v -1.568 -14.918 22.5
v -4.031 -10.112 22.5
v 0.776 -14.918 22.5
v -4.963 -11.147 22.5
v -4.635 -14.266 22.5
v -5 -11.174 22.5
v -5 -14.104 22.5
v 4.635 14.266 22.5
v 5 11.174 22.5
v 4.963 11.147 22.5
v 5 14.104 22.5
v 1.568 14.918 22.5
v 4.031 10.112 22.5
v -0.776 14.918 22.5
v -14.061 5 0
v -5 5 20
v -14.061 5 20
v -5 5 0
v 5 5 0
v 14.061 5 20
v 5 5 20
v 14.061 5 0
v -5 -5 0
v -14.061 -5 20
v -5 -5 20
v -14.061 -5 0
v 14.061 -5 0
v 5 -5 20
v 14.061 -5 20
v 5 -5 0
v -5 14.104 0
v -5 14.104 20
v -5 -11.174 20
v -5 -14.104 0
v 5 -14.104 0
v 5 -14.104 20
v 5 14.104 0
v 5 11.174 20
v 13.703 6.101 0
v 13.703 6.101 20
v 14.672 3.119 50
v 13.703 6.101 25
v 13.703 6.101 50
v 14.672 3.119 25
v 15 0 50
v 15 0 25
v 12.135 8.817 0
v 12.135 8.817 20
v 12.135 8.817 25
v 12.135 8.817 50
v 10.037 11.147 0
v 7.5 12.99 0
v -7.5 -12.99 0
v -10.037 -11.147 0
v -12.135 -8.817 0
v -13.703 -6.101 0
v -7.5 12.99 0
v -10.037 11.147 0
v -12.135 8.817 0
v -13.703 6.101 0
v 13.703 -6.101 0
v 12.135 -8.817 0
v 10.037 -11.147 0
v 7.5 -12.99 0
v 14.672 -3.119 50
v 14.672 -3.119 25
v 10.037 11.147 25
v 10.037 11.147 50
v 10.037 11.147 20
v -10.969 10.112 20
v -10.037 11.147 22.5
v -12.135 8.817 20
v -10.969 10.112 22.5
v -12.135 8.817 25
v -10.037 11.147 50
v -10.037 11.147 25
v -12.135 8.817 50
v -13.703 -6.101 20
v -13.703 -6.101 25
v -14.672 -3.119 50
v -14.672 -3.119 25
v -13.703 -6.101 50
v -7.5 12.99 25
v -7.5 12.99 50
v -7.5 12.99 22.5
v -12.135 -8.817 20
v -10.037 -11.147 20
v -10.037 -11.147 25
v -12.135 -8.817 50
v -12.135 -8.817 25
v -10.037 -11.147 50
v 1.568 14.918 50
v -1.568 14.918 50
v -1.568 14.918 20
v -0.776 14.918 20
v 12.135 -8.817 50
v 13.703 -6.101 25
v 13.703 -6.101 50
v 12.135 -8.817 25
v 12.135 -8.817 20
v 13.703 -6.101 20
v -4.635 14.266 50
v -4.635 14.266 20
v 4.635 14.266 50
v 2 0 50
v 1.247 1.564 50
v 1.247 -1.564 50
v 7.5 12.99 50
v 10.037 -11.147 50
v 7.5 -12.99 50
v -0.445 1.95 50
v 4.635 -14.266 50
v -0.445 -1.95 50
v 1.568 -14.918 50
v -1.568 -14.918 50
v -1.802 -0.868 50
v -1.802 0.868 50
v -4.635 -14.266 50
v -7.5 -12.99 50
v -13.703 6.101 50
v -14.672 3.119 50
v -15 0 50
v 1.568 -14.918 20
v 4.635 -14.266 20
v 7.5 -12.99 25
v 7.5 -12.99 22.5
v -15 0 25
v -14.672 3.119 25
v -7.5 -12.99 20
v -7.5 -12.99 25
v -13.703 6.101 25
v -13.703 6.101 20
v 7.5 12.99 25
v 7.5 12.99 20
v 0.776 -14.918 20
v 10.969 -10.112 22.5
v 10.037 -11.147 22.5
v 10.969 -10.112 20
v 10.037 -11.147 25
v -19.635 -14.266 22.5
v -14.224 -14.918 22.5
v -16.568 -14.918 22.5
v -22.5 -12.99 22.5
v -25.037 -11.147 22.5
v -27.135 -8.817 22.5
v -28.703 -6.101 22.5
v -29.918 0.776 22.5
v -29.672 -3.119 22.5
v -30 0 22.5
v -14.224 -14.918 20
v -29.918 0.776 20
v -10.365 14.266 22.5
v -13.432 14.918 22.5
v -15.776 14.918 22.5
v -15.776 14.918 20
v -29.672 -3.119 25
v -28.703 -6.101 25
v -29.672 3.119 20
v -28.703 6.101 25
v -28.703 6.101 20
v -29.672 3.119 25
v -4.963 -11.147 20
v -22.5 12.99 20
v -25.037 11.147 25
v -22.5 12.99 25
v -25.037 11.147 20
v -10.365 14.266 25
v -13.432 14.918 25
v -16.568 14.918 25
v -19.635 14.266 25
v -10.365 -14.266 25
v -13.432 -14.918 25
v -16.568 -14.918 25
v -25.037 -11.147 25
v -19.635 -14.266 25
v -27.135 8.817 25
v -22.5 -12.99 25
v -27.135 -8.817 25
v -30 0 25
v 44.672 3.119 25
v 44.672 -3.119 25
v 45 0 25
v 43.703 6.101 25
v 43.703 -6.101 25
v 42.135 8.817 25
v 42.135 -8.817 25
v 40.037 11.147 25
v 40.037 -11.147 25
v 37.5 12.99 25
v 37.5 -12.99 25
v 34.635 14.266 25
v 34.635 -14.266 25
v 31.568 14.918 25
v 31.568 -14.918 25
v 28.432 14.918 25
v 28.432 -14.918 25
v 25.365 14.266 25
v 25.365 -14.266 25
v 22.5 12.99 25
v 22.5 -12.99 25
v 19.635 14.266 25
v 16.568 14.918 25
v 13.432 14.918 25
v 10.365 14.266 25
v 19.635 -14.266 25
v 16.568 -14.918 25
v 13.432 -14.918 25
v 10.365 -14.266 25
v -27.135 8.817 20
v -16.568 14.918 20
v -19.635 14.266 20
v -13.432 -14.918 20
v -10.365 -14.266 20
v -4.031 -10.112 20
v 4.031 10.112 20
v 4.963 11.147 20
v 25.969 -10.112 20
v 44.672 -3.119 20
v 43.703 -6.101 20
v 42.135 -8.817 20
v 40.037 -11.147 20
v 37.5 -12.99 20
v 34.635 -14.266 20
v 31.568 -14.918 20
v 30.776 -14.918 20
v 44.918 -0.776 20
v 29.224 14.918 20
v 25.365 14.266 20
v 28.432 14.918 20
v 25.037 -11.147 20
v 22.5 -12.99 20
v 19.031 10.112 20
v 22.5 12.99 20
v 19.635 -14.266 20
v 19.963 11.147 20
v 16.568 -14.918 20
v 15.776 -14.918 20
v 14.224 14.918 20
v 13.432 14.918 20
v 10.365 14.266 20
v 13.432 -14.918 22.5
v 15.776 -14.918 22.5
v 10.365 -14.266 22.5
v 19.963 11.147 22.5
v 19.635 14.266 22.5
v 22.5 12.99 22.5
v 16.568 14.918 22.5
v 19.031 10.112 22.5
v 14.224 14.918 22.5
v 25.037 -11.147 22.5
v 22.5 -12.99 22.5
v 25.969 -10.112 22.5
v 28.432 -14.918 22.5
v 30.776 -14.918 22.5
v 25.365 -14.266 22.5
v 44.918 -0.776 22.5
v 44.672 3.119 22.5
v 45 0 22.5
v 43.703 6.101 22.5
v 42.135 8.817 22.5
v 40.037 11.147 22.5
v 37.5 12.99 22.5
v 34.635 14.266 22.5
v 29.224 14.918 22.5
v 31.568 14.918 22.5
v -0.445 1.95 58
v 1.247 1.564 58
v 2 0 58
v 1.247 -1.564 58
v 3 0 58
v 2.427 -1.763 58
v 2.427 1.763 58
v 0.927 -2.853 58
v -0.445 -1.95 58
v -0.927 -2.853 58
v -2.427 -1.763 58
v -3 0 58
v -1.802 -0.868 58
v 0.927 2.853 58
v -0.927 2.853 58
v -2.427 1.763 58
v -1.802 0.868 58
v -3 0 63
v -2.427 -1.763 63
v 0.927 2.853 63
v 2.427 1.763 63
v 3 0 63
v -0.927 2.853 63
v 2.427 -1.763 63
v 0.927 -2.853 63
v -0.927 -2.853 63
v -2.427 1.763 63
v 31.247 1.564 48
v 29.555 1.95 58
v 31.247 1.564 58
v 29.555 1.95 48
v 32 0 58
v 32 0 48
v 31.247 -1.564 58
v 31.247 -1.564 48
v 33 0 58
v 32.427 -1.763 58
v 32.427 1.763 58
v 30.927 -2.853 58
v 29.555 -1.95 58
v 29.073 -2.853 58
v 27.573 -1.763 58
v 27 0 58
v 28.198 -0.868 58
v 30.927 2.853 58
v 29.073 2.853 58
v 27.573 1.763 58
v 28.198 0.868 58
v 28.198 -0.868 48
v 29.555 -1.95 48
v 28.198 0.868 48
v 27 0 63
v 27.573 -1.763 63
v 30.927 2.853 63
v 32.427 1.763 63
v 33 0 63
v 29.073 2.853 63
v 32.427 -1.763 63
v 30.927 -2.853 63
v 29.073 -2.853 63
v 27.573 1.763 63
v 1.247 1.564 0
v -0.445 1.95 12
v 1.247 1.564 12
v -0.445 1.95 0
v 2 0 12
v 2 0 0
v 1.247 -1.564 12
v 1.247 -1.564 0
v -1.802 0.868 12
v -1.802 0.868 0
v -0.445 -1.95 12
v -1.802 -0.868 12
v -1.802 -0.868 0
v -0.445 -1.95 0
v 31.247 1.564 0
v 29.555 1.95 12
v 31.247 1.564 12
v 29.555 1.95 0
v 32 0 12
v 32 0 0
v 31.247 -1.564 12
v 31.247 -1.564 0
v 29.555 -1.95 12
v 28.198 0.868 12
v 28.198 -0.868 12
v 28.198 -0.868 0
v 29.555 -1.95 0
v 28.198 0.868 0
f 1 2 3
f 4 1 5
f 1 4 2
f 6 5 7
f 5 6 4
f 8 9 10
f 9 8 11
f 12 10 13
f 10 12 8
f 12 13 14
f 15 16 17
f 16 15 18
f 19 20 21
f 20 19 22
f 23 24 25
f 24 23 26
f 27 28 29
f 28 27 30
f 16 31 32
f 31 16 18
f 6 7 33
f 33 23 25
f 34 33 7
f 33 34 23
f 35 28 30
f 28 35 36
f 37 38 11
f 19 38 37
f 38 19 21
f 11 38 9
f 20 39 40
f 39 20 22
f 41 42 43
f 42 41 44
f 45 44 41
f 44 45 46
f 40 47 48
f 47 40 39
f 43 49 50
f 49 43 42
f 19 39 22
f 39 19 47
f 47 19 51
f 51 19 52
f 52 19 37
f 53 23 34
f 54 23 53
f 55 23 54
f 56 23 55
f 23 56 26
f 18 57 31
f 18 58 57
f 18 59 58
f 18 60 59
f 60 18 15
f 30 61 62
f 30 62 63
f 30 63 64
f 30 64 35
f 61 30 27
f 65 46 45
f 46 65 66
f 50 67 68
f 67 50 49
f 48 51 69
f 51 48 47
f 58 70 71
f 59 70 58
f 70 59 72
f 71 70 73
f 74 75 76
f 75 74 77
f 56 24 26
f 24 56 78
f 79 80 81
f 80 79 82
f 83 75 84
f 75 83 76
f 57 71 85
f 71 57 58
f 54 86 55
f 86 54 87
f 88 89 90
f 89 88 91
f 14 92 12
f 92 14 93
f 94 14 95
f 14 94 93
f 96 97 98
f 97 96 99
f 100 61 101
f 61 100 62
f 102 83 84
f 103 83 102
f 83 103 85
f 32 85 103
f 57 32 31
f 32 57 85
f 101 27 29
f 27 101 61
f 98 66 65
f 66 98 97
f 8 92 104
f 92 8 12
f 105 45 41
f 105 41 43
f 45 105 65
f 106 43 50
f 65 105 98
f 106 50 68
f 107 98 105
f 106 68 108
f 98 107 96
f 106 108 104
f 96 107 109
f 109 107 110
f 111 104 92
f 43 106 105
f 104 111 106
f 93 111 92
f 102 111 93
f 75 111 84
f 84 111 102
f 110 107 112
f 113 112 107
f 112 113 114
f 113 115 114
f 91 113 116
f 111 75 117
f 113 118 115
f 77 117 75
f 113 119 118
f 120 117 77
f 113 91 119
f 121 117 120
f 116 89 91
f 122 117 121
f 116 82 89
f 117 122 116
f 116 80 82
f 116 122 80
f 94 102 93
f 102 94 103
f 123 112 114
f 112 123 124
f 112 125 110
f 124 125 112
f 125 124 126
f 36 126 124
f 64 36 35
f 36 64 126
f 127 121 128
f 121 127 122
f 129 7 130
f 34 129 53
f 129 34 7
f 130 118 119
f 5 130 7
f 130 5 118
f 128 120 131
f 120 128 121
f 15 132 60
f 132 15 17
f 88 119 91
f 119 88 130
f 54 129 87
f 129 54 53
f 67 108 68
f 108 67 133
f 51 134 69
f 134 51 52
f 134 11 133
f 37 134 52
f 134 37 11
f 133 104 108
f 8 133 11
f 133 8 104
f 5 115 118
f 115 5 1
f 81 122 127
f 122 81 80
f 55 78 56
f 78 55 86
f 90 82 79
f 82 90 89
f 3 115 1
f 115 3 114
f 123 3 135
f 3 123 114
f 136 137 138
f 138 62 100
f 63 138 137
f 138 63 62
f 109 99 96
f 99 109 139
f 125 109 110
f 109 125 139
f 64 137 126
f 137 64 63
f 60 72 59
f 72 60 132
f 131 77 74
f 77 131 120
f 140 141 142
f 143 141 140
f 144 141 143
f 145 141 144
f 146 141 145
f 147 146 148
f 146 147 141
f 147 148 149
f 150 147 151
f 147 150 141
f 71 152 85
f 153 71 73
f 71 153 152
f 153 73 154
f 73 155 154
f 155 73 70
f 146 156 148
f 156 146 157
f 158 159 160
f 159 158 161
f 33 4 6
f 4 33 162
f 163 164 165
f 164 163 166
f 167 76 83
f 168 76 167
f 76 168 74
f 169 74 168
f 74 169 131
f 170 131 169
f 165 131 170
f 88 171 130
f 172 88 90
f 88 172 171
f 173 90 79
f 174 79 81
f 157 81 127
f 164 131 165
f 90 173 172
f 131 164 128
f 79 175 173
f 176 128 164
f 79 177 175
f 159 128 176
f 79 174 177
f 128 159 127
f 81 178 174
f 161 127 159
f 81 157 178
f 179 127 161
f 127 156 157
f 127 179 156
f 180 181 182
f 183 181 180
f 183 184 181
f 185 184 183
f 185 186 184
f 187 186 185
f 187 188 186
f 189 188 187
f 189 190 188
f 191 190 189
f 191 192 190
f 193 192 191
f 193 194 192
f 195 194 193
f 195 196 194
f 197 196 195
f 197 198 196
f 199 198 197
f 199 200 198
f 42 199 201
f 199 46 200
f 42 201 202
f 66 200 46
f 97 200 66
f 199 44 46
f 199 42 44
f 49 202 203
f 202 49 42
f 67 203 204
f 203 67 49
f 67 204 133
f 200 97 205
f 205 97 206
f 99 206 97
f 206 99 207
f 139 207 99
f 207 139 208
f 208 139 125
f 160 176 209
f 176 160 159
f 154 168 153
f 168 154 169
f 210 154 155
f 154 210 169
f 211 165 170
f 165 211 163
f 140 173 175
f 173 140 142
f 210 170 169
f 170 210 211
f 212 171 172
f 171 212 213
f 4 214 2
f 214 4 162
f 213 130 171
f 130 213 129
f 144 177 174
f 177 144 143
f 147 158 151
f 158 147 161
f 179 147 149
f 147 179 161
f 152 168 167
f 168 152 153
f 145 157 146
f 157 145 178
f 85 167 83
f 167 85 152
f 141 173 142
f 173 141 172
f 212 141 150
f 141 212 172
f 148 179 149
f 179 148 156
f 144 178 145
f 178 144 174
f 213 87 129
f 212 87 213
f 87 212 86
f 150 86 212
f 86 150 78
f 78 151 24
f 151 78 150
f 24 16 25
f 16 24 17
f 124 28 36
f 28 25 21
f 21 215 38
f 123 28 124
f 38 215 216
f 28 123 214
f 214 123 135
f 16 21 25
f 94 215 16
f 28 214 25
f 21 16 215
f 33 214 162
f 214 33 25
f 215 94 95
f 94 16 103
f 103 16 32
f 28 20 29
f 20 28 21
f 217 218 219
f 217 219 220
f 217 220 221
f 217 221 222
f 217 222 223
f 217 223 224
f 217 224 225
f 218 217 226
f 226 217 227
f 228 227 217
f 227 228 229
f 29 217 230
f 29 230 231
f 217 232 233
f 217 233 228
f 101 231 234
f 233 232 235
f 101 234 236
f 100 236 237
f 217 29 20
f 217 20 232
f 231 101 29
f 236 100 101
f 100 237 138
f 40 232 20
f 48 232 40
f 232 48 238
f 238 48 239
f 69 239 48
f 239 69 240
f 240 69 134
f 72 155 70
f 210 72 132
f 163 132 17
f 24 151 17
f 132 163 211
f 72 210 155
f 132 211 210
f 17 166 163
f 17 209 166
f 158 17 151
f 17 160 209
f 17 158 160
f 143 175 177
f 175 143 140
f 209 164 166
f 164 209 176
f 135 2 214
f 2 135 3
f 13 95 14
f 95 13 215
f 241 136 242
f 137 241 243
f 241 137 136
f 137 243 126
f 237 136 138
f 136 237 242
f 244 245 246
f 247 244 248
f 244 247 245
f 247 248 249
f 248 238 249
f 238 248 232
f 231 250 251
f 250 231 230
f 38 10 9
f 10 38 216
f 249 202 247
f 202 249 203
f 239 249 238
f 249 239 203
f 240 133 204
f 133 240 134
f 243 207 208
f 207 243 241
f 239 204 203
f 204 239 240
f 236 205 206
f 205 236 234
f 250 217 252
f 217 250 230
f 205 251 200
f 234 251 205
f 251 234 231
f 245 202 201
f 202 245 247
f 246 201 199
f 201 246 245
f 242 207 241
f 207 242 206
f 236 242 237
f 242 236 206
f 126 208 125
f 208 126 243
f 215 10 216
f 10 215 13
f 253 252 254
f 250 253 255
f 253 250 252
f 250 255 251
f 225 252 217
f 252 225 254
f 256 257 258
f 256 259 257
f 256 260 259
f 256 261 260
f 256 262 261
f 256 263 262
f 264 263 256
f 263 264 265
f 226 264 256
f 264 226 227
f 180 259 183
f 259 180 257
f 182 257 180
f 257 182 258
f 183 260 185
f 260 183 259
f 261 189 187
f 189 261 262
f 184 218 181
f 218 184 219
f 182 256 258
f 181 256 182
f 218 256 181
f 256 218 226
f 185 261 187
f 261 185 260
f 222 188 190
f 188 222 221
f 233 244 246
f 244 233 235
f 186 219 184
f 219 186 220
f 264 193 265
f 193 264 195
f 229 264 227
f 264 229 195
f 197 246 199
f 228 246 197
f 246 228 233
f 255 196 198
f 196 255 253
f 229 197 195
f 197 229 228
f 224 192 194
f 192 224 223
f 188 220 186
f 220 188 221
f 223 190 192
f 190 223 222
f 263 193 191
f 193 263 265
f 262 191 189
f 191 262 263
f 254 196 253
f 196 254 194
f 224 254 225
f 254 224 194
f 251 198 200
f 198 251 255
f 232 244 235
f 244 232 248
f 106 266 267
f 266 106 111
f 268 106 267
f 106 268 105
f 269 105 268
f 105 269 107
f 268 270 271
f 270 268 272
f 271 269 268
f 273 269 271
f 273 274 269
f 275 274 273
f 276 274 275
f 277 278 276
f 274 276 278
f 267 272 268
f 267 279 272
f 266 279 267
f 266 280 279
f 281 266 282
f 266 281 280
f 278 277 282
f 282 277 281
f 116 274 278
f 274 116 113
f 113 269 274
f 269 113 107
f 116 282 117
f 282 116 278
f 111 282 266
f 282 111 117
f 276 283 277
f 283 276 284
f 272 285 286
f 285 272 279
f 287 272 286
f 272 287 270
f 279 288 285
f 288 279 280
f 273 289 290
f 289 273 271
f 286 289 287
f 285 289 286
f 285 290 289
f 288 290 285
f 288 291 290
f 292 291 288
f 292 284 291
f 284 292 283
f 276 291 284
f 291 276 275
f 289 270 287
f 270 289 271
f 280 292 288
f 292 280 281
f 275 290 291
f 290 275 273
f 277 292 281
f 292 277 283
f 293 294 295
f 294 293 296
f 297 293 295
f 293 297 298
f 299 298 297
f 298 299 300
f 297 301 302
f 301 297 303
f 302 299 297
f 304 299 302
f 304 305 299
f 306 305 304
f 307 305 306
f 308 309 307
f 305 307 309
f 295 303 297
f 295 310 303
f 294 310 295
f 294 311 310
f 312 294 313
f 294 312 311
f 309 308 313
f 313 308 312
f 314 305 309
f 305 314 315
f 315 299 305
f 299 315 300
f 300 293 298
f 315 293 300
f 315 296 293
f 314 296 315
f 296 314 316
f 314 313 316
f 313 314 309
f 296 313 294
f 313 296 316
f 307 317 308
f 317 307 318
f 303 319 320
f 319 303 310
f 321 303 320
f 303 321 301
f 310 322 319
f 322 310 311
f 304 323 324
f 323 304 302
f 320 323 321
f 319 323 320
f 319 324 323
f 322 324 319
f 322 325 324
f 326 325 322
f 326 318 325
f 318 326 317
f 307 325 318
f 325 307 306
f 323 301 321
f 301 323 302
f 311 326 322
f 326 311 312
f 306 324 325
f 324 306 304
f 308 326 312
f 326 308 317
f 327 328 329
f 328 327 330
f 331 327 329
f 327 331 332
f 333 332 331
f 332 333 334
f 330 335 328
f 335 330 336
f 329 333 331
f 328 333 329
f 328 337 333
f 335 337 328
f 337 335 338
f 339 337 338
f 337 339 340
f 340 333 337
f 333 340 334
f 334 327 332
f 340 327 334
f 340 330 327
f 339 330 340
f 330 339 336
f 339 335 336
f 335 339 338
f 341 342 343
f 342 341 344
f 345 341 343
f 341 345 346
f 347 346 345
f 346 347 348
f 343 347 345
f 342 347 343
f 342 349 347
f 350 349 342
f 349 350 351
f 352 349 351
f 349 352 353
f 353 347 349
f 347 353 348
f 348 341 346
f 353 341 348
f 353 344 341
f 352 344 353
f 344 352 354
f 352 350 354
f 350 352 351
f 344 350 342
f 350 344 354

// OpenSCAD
// Define Main Body
module main_body() {
    difference() {
        cylinder(h=50, d=30);
        for (i = [0 : 90 : 270]) {
            rotate([0, 0, i])
                translate([0, 0, 10])
                    cube([30, 10, 25], center = true);
        }
    }
}

// Define Slotted Disc
module slotted_disc() {
    difference() {
        cylinder(h=5, d=30);
        for (j = [-15, 15]) {
            rotate([0, 0, 45])
                translate([j, 0, 0])
                    cube([10, 30, 5], center = true);
        }
    }
}

// Define Fastening Bolt
module fastening_bolt() {
    union() {
        cylinder(h=10, d=4);
        translate([0, 0, 10])
            cylinder(h=5, d=6);
    }
}

// Define Screw Hole
module screw_hole() {
    cylinder(h=12, d=4);
}

// Assemble Components
module assemble() {
    main_body();
    translate([0, 0, 0])
        screw_hole();
    translate([30, 0, 0])
        screw_hole();
    for (k = [-15 : 15 : 30]) {
        translate([k, 0, 20])
            slotted_disc();
    }
    translate([0, 0, 48])
        fastening_bolt();
    translate([30, 0, 48])
        fastening_bolt();
}

// Call to Assemble
assemble();
